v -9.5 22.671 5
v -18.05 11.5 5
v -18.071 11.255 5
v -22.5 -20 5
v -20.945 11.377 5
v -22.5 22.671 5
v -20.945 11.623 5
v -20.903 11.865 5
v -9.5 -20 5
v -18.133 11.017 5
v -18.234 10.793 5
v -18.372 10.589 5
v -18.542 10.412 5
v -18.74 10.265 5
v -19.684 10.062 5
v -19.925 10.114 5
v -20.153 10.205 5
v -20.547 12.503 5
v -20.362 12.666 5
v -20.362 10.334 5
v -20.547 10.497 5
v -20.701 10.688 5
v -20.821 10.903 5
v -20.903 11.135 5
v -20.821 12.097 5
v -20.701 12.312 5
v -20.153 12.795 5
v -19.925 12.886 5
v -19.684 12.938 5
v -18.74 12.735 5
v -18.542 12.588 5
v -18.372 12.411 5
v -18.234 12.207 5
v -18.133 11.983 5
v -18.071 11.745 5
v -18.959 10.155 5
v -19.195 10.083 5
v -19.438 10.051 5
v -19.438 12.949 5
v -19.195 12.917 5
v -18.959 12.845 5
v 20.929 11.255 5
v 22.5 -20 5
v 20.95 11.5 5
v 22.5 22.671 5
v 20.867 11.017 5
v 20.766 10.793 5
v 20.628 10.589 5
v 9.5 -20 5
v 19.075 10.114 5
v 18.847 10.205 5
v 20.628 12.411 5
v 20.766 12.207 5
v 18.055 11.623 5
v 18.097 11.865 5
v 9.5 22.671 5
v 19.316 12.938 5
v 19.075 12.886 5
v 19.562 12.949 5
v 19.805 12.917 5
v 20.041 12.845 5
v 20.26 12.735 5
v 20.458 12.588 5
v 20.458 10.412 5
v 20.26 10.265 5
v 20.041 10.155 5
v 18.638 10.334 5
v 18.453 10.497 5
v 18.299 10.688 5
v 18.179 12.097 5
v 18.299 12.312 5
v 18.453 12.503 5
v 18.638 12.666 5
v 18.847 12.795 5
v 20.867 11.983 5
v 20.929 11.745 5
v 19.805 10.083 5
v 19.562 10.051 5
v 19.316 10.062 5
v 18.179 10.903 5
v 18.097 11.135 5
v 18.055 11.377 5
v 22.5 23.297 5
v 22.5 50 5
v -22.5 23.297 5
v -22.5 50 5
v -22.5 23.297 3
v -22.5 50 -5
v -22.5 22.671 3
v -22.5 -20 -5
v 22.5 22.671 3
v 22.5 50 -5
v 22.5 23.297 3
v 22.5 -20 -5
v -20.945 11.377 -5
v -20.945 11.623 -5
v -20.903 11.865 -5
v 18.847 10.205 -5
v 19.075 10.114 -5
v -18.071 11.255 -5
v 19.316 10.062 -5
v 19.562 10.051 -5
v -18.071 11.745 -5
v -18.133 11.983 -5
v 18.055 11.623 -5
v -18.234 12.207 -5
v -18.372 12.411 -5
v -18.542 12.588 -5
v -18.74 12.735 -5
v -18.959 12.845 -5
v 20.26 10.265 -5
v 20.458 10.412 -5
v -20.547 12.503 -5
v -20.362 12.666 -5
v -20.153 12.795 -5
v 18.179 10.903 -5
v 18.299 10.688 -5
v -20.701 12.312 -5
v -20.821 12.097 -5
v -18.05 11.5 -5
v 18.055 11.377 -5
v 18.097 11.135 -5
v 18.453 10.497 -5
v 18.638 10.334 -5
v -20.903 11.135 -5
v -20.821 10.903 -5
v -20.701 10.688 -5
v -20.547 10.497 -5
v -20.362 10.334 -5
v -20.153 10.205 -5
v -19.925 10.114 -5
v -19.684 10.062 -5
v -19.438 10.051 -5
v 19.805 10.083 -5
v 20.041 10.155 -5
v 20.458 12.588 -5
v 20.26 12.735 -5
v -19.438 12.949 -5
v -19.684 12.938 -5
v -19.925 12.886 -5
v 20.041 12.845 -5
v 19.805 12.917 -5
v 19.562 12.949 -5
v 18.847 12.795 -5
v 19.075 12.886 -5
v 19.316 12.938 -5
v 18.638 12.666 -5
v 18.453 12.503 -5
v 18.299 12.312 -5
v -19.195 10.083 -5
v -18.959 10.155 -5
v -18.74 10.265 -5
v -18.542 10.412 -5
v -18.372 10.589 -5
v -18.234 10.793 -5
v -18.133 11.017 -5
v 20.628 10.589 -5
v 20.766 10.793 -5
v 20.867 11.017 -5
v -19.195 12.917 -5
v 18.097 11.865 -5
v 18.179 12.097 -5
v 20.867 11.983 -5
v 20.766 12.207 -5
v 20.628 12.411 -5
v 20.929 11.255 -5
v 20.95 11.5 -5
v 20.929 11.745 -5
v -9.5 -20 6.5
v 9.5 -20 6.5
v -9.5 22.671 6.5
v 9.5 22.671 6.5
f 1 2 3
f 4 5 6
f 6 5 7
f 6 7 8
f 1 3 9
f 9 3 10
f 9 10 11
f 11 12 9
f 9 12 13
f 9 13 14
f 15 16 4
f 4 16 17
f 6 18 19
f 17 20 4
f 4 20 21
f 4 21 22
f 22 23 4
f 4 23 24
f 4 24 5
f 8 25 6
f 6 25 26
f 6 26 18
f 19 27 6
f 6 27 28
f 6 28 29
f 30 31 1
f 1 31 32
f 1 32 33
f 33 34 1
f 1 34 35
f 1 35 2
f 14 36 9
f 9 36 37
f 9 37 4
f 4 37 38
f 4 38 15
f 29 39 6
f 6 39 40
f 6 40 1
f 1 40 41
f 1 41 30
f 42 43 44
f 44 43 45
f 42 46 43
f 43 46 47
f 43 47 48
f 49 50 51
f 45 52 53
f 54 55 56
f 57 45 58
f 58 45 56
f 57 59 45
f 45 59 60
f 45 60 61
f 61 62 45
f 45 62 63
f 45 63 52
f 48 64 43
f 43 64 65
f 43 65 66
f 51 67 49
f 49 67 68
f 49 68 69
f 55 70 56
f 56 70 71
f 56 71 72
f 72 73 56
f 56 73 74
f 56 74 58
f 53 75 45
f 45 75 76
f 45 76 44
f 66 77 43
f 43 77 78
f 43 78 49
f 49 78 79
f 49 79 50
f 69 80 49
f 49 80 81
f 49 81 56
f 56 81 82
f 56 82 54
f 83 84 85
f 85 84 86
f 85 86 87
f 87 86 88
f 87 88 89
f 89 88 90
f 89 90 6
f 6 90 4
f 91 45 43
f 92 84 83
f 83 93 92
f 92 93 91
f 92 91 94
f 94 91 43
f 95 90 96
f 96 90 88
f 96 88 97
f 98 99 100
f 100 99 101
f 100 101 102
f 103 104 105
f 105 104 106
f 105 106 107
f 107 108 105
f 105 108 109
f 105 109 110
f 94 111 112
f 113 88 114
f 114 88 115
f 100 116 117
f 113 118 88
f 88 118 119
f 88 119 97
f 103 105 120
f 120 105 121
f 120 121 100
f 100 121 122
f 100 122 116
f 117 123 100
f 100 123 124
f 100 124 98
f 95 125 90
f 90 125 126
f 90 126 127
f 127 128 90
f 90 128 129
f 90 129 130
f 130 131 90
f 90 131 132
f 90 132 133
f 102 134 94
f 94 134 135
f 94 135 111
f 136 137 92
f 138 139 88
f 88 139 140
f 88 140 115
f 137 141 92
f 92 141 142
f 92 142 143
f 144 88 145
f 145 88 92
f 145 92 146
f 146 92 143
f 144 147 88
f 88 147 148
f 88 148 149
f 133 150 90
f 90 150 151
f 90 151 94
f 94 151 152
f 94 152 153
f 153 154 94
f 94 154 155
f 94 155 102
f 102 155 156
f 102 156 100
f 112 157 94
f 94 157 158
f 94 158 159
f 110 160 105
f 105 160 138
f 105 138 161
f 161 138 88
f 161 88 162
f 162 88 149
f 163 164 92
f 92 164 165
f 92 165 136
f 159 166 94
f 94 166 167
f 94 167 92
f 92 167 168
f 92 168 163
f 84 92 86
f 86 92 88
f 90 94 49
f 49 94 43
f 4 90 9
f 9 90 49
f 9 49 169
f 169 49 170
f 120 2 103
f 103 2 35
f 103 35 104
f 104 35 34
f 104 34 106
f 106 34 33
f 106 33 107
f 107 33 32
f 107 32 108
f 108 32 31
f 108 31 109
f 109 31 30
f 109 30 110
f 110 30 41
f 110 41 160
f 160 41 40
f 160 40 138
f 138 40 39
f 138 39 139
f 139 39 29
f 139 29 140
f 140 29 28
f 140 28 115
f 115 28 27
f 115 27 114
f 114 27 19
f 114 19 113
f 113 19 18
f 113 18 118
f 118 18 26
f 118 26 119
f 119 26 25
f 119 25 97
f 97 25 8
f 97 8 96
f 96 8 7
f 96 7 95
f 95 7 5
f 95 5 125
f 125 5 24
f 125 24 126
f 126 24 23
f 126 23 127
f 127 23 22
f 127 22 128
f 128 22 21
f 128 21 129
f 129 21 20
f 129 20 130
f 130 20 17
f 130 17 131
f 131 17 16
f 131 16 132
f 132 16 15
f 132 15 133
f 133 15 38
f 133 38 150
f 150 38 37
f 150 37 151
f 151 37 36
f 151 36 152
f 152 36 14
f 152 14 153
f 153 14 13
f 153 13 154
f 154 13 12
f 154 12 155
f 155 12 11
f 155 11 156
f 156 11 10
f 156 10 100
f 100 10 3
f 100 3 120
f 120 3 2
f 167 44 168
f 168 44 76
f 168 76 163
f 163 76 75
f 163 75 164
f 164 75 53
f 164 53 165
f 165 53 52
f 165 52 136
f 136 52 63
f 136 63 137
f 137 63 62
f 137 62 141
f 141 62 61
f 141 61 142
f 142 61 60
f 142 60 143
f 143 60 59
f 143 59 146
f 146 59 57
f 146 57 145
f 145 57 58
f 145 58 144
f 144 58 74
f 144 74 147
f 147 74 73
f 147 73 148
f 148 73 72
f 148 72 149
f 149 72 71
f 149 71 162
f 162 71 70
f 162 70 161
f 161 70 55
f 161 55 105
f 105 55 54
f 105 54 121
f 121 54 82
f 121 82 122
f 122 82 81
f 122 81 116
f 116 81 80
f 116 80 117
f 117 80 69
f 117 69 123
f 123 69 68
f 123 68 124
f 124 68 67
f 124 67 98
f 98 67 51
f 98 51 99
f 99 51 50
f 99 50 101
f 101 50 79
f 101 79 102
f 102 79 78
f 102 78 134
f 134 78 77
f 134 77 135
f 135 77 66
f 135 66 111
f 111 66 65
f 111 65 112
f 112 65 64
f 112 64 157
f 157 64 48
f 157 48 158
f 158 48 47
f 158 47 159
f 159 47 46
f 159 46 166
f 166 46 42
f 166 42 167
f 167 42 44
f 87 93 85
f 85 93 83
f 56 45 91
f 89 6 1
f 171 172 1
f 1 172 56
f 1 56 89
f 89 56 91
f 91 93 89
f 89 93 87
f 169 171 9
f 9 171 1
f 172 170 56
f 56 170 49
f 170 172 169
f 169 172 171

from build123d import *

# Parameters (mm, degrees)
SKETCH2_W           = 45
SKETCH2_H           = 10
BOSS_EXTRUDE1_DEPTH = 40
SKETCH4_W           = 45
SKETCH4_H           = 10
BOSS_EXTRUDE2_DEPTH = 10
SKETCH8_W           = 45
SKETCH8_H           = 10
BOSS_EXTRUDE3_DEPTH = 20
SKETCH9_R           = 1.45
CUT_EXTRUDE2_DEPTH  = 20
SKETCH10_W          = 45
SKETCH10_H          = 0.626165357
CUT_EXTRUDE3_DEPTH  = 2
SKETCH11_W          = 19
SKETCH11_H          = 42.671327575
BOSS_EXTRUDE4_DEPTH = 1.5


with BuildPart() as part:
    # Sketch2 → Boss-Extrude1 (new body)
    with BuildSketch(Plane(origin=(0, 0, 0), x_dir=(1, 0, 0), z_dir=(0, 1, 0))):
        Rectangle(SKETCH2_W, SKETCH2_H)
    extrude(amount=BOSS_EXTRUDE1_DEPTH)

    # Sketch4 → Boss-Extrude2 (add)
    with BuildSketch(Plane(origin=(0, 40, 0), x_dir=(1, 0, 0), z_dir=(0, 1, 0))):
        Rectangle(SKETCH4_W, SKETCH4_H)
    extrude(amount=BOSS_EXTRUDE2_DEPTH)

    # Sketch8 → Boss-Extrude3 (add)
    with BuildSketch(Plane.XZ):
        Rectangle(SKETCH8_W, SKETCH8_H)
    extrude(amount=BOSS_EXTRUDE3_DEPTH)

    # Sketch9 → Cut-Extrude2 (cut)
    with BuildSketch(Plane.XY.offset(5)):
        with Locations((19.5, 11.5)):
            Circle(SKETCH9_R)
        with Locations((-19.5, 11.5)):
            Circle(SKETCH9_R)
    extrude(amount=-CUT_EXTRUDE2_DEPTH, mode=Mode.SUBTRACT)

    # Sketch10 → Cut-Extrude3 (cut)
    with BuildSketch(Plane.XY.offset(5)):
        with Locations((0, 22.984410254)):
            Rectangle(SKETCH10_W, SKETCH10_H)
    extrude(amount=-CUT_EXTRUDE3_DEPTH, mode=Mode.SUBTRACT)

    # Sketch11 → Boss-Extrude4 (add)
    with BuildSketch(Plane.XY.offset(5)):
        with Locations((0, 1.335663788)):
            Rectangle(SKETCH11_W, SKETCH11_H)
    extrude(amount=BOSS_EXTRUDE4_DEPTH)


solid = part.part
